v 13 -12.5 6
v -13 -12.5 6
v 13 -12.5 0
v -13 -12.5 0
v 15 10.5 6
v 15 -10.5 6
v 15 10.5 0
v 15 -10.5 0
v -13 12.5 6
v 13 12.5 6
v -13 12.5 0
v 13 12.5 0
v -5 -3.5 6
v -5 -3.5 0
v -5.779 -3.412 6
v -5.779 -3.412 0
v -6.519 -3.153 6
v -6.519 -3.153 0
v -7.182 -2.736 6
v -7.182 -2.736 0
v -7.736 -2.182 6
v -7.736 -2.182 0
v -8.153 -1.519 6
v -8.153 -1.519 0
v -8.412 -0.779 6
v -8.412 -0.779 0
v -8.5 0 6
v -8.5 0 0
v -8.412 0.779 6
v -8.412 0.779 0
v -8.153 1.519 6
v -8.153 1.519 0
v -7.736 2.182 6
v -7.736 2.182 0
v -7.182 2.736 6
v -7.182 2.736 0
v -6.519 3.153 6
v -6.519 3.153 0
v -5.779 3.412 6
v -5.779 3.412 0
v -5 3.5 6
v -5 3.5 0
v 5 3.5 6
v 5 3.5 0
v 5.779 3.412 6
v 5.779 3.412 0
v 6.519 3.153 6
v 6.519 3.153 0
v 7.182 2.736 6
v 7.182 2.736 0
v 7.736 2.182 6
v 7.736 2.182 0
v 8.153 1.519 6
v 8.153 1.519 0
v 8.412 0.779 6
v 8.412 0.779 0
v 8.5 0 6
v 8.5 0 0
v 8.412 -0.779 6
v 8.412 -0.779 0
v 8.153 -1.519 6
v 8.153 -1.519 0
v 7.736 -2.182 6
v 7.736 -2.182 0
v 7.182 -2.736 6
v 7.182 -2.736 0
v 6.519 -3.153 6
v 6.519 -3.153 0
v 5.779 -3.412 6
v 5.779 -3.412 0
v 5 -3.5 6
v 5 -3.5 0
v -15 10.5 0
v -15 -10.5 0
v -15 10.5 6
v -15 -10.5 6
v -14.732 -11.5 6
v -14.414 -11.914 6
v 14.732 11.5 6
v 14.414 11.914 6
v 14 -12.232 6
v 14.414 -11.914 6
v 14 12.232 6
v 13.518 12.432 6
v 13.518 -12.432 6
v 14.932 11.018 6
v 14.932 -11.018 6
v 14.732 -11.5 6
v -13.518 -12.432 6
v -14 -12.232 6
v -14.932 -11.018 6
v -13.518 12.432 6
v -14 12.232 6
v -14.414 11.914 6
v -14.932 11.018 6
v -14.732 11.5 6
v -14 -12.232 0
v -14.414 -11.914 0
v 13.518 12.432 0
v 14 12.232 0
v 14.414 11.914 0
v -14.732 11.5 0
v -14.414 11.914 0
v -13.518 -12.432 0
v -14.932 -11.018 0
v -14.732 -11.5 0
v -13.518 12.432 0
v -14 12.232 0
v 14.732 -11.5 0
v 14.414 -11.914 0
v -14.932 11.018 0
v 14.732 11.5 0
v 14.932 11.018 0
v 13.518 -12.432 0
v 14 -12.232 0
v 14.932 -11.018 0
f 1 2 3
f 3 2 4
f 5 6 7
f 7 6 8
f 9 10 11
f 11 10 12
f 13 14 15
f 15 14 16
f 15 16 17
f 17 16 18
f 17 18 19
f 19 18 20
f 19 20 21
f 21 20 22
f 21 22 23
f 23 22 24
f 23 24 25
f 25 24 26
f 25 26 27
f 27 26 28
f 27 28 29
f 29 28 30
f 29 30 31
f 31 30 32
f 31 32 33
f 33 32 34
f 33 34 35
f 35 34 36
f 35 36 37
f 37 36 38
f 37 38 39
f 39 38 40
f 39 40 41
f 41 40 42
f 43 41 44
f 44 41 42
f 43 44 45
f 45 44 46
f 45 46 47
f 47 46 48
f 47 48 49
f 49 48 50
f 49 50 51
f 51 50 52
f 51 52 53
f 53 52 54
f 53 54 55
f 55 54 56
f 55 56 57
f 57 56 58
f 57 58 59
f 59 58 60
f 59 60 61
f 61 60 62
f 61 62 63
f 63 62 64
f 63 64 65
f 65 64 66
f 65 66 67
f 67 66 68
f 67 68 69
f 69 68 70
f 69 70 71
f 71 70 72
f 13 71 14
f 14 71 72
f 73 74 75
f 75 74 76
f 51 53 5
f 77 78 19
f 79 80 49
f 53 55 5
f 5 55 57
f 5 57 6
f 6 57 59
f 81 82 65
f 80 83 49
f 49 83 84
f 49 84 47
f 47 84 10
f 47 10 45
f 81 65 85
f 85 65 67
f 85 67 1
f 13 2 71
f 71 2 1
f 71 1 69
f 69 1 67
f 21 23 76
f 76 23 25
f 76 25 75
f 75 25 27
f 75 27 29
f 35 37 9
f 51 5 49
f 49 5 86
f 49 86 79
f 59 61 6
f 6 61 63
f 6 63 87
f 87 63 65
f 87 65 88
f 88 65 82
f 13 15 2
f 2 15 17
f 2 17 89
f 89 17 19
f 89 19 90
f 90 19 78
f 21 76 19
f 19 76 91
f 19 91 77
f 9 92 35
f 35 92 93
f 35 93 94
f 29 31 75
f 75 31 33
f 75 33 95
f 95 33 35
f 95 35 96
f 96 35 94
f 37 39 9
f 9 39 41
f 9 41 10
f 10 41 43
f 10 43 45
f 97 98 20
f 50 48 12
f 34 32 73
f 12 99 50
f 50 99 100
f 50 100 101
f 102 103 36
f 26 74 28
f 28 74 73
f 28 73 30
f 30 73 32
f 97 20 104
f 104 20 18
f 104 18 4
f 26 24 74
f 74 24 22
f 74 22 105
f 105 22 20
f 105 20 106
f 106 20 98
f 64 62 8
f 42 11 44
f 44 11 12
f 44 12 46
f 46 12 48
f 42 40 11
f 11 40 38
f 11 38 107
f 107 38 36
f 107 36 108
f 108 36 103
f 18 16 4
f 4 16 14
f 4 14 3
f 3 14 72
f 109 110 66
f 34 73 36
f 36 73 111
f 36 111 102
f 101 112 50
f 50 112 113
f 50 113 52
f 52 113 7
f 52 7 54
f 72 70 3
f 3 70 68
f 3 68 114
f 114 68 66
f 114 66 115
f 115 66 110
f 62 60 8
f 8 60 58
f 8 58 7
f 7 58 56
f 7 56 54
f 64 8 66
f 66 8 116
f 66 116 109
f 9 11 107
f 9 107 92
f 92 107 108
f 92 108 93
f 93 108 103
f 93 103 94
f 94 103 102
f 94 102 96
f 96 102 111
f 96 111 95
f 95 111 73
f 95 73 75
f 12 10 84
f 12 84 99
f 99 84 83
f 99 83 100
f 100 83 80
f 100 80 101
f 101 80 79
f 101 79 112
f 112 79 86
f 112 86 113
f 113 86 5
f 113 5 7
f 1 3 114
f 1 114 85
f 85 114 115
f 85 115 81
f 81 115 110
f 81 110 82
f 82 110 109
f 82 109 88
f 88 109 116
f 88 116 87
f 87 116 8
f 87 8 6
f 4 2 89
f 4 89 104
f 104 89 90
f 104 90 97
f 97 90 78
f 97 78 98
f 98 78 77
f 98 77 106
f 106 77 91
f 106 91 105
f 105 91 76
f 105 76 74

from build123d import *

# Parameters (mm, degrees)
SKETCH_1_W      = 30
SKETCH_1_H      = 25
EXTRUDE_2_DEPTH = 6
FILLET_2_R      = 2


with BuildPart() as part:
    # 스케치1 → 보스-돌출2 (new body)
    with BuildSketch(Plane.XY):
        Rectangle(SKETCH_1_W, SKETCH_1_H)
        with BuildLine():
            ThreePointArc((-5, -3.5), (-8.5, 0), (-5, 3.5))
            Line((-5, 3.5), (5, 3.5))
            ThreePointArc((5, 3.5), (7.474873734, 2.474873734), (8.5, 0))
            ThreePointArc((8.5, 0), (7.474873734, -2.474873734), (5, -3.5))
            Line((5, -3.5), (-5, -3.5))
        make_face(mode=Mode.SUBTRACT)
    extrude(amount=EXTRUDE_2_DEPTH)

    # 필렛2
    fillet_2_edges = [part.edges().sort_by_distance(p)[0] for p in [
        (-15, -12.5, 3),
        (-15, 12.5, 3),
        (15, 12.5, 3),
        (15, -12.5, 3),
    ]]
    fillet(fillet_2_edges, radius=FILLET_2_R)


solid = part.part
